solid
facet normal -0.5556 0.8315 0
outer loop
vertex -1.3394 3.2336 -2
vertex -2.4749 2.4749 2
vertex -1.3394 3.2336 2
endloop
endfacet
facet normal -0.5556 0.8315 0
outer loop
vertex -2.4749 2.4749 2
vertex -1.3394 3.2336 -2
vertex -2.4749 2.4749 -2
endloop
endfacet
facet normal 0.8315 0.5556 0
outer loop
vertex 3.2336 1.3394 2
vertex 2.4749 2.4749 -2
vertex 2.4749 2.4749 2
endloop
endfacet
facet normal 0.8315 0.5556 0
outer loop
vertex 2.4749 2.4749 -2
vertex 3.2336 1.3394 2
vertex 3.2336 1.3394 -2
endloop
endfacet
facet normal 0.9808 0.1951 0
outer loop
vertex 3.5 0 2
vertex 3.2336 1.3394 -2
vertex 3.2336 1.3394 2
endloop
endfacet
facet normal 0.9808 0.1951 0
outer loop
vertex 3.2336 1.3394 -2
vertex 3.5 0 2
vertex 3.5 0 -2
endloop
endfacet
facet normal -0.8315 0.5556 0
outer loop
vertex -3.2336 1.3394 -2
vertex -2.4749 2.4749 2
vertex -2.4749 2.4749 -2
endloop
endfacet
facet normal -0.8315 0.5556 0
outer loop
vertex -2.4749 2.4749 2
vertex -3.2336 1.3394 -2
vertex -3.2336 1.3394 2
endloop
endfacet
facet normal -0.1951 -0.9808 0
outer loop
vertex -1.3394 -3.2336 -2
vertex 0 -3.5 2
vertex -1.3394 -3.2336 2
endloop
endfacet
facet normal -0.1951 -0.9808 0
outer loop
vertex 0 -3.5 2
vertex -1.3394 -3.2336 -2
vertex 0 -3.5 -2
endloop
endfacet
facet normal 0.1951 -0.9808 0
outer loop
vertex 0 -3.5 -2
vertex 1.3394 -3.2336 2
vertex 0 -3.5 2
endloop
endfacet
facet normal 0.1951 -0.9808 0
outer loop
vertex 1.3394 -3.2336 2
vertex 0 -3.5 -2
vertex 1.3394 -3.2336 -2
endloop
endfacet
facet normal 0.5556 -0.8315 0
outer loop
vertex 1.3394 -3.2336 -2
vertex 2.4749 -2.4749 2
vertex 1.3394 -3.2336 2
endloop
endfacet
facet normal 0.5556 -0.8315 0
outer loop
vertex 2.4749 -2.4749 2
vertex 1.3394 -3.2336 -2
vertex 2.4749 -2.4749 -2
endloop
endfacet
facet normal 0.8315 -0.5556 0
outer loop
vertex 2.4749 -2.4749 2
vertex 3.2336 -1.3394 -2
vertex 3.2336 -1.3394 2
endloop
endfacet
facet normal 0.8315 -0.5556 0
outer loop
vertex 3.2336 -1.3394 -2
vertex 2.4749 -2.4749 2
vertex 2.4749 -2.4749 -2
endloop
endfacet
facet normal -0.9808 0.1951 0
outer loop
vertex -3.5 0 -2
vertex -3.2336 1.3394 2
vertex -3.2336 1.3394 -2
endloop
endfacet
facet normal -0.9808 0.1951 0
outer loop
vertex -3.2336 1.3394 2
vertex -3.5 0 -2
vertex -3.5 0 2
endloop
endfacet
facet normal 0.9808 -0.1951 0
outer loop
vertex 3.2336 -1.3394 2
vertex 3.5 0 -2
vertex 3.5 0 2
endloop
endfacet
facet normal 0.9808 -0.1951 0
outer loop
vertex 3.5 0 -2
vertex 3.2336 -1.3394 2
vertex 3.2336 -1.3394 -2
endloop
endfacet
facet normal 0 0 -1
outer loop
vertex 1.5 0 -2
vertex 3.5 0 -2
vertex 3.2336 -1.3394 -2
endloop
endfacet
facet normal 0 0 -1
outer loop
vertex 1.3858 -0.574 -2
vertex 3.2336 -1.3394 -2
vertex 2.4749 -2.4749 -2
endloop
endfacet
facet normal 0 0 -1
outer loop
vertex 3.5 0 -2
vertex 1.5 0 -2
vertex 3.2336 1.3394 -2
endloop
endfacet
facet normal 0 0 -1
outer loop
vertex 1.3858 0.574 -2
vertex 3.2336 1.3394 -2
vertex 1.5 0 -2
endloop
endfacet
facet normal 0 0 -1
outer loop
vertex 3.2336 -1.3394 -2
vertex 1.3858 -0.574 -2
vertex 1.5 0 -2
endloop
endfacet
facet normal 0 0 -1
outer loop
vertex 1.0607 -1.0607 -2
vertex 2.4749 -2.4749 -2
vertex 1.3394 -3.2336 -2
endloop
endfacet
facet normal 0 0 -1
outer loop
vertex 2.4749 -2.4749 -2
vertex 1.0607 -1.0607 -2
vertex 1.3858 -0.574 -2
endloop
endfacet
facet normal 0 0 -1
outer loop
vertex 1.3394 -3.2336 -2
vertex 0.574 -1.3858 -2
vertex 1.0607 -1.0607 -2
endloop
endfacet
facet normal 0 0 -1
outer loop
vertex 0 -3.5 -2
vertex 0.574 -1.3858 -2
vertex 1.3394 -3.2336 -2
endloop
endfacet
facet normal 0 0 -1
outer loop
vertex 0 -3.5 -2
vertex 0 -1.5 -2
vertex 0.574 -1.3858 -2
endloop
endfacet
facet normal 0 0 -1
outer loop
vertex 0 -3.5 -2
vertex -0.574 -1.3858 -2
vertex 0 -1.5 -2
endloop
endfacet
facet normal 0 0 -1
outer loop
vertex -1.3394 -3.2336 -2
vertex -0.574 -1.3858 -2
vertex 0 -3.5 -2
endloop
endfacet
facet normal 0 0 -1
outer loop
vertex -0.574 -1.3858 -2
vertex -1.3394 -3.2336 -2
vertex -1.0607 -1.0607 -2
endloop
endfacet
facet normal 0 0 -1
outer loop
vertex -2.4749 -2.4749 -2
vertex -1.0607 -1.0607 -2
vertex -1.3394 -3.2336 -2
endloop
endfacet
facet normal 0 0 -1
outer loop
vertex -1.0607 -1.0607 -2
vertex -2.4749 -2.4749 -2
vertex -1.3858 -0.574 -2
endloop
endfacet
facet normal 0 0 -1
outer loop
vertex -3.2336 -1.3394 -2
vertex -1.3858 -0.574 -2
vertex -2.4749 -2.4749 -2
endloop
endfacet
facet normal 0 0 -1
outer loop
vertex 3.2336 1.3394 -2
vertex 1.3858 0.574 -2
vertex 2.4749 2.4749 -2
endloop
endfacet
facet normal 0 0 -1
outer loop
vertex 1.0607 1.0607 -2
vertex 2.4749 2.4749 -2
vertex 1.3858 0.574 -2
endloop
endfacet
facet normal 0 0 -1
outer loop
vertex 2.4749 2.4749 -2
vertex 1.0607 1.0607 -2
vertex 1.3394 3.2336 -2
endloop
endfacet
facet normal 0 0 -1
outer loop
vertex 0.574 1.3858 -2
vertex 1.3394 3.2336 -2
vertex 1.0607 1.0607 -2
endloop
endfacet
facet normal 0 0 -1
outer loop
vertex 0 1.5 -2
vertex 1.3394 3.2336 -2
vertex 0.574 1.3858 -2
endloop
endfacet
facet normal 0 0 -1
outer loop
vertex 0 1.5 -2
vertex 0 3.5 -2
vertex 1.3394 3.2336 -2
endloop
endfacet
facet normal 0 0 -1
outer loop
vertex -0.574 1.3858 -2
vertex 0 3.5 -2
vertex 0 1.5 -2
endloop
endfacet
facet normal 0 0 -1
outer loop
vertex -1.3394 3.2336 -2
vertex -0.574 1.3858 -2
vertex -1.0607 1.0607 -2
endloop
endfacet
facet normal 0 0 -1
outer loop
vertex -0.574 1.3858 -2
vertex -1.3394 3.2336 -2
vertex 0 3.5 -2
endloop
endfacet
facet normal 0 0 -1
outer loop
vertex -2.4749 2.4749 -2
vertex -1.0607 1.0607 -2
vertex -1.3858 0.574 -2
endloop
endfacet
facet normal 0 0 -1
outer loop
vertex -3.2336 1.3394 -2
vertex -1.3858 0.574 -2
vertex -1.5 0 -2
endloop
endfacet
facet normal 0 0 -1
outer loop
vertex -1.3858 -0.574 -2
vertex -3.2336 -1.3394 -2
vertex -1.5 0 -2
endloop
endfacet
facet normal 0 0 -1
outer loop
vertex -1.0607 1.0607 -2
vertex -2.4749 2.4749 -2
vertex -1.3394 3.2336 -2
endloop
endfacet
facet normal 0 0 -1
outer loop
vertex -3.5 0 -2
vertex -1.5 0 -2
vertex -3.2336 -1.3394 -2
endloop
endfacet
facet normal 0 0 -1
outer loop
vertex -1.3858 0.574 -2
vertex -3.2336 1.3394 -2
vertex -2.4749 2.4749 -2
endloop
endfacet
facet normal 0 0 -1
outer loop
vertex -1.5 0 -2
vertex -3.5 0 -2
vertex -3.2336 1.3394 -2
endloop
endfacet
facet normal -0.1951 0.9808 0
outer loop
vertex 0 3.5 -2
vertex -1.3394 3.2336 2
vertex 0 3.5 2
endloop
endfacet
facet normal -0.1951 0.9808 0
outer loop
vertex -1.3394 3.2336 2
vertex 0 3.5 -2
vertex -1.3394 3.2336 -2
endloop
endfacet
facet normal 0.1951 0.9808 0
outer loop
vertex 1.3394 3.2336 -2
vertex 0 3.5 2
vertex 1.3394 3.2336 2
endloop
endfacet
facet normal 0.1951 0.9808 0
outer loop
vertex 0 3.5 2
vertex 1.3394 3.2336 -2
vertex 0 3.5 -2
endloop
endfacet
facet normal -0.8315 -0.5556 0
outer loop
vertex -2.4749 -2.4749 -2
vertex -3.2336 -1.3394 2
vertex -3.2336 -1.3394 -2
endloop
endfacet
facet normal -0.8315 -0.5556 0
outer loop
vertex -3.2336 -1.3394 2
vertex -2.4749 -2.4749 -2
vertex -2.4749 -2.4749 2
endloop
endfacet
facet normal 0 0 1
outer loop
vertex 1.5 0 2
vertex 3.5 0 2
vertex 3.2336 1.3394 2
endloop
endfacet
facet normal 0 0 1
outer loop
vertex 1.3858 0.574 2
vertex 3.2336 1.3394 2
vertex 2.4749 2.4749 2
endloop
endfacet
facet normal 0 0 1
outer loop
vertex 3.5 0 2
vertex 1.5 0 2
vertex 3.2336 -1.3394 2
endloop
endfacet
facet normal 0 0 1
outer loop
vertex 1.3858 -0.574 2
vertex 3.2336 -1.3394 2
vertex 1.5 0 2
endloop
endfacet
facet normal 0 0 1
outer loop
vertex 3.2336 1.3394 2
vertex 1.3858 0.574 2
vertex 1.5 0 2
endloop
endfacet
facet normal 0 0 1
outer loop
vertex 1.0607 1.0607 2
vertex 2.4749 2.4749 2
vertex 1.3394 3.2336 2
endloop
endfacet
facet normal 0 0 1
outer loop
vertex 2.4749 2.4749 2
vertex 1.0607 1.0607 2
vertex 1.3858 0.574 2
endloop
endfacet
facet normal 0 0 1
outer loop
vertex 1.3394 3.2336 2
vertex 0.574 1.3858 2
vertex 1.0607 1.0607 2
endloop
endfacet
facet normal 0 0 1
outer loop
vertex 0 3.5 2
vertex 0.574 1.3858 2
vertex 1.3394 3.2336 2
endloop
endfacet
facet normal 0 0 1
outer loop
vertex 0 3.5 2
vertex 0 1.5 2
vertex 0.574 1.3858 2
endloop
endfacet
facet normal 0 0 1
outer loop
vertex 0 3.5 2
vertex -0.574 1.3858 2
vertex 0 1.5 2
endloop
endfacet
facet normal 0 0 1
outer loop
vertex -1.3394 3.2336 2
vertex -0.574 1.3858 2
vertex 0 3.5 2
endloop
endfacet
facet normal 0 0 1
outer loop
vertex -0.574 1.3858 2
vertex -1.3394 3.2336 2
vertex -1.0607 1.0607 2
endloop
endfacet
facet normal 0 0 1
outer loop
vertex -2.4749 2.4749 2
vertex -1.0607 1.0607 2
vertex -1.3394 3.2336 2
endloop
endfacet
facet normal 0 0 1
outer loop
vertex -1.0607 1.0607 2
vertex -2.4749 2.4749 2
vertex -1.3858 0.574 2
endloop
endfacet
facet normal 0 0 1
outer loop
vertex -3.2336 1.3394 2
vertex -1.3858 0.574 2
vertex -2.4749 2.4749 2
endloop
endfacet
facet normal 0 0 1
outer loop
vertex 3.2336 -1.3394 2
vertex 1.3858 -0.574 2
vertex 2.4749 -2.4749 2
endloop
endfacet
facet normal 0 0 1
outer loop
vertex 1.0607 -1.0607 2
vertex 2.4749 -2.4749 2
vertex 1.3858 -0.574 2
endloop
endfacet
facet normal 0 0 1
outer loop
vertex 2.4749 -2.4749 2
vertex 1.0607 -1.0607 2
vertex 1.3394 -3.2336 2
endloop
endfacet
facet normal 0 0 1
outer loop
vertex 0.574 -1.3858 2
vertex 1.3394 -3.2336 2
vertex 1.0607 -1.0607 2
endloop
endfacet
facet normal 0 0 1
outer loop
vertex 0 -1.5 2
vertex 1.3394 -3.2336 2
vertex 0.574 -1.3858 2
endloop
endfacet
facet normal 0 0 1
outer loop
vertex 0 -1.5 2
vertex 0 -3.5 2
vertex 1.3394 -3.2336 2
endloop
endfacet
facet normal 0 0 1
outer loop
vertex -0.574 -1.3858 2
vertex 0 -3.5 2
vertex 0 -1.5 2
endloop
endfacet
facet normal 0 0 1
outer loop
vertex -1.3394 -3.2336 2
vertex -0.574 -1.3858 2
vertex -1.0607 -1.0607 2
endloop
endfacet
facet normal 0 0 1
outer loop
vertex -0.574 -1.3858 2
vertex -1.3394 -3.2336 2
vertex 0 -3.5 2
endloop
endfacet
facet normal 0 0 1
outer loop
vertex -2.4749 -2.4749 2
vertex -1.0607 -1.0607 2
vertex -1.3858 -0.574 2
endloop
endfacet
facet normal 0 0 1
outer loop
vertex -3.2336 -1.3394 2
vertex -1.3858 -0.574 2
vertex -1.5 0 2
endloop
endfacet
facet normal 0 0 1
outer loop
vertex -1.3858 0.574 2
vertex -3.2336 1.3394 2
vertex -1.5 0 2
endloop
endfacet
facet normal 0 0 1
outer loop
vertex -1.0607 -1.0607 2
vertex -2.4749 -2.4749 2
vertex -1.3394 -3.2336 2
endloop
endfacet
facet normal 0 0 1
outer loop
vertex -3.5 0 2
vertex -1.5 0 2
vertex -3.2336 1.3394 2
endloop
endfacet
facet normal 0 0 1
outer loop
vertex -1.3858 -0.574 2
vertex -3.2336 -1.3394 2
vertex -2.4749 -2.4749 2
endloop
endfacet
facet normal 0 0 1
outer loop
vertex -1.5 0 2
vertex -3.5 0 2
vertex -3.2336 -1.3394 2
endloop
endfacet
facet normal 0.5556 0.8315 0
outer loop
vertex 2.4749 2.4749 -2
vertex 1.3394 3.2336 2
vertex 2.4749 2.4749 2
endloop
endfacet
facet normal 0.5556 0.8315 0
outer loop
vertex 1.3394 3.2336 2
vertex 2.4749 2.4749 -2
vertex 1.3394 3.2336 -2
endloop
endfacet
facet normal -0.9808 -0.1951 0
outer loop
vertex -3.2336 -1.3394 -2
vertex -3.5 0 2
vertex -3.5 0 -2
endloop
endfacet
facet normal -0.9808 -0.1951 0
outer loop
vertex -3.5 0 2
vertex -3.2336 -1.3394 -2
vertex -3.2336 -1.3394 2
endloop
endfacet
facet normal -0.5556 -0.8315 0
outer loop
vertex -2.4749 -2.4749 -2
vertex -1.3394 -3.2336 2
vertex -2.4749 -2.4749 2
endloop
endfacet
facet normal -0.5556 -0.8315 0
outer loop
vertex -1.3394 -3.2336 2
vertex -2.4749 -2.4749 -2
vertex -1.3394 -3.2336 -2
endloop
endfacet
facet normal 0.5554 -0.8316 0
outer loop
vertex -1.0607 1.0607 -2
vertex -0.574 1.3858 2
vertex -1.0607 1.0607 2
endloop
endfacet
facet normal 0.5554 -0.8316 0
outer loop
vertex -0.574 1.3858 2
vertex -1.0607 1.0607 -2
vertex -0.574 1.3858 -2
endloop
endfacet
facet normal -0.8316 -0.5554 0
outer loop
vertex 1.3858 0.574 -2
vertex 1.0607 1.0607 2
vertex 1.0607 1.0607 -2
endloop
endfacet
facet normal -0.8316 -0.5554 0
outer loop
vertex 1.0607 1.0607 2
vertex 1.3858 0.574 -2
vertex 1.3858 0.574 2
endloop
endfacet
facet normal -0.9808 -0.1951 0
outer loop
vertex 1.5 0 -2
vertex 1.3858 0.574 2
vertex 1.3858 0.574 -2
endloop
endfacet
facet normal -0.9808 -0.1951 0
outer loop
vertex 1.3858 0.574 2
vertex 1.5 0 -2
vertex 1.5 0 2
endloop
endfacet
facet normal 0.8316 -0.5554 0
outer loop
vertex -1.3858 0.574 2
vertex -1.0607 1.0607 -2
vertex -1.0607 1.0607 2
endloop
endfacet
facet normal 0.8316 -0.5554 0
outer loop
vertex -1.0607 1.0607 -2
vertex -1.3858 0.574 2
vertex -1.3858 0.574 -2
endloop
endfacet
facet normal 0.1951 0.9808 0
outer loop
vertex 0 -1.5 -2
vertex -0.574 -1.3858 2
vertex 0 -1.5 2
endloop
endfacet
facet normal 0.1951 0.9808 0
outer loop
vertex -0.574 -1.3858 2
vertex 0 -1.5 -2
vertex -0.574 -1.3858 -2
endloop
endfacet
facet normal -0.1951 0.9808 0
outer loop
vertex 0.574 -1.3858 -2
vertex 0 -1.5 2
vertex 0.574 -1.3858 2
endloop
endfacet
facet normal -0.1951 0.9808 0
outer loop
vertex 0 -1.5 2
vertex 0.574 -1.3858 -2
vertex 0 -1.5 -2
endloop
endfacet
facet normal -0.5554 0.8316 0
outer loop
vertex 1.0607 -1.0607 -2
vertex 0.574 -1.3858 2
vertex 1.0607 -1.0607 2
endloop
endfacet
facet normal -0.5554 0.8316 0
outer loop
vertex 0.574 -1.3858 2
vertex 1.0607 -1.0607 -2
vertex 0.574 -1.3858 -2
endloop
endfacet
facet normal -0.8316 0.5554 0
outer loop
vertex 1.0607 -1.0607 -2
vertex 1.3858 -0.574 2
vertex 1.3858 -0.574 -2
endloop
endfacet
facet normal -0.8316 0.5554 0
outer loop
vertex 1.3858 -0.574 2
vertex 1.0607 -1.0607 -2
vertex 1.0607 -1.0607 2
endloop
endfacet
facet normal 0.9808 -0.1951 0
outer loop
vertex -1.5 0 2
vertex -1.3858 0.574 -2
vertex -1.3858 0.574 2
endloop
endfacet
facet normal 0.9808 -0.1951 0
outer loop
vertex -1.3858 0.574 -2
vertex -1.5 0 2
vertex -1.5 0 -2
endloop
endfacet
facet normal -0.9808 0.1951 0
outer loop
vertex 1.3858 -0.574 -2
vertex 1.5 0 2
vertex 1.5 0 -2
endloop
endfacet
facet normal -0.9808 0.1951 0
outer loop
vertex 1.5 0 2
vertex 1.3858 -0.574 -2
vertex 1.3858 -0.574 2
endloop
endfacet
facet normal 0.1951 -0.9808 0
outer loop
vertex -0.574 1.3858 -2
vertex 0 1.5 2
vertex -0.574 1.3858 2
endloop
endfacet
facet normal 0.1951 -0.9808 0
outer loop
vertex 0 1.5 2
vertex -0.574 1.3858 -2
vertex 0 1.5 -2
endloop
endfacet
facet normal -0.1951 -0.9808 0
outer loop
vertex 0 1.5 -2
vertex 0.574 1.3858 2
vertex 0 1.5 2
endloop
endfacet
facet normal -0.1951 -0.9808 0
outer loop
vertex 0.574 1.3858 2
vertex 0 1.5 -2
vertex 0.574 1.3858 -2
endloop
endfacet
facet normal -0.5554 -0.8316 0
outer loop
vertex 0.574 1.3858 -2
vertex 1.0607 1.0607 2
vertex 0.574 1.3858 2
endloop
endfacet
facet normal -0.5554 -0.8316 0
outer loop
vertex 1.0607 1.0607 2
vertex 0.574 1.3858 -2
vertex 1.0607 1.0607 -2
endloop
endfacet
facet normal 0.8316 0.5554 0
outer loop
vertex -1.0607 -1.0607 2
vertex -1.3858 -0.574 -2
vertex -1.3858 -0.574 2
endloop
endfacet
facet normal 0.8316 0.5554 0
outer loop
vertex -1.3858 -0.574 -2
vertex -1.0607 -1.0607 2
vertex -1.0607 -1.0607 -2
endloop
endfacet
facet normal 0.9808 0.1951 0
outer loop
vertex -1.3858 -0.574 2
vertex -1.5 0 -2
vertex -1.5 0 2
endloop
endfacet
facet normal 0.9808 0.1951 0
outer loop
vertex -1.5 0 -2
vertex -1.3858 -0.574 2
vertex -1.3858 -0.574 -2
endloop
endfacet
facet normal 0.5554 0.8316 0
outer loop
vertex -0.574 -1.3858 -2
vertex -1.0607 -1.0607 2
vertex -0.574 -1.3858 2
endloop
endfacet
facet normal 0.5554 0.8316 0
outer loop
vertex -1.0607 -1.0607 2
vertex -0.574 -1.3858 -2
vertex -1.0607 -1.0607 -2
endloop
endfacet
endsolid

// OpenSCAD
difference(){
cylinder(d=7,h=4,center=true,$fn=16);
cylinder(d=3,h=50,center=true,$fn=16);
}
